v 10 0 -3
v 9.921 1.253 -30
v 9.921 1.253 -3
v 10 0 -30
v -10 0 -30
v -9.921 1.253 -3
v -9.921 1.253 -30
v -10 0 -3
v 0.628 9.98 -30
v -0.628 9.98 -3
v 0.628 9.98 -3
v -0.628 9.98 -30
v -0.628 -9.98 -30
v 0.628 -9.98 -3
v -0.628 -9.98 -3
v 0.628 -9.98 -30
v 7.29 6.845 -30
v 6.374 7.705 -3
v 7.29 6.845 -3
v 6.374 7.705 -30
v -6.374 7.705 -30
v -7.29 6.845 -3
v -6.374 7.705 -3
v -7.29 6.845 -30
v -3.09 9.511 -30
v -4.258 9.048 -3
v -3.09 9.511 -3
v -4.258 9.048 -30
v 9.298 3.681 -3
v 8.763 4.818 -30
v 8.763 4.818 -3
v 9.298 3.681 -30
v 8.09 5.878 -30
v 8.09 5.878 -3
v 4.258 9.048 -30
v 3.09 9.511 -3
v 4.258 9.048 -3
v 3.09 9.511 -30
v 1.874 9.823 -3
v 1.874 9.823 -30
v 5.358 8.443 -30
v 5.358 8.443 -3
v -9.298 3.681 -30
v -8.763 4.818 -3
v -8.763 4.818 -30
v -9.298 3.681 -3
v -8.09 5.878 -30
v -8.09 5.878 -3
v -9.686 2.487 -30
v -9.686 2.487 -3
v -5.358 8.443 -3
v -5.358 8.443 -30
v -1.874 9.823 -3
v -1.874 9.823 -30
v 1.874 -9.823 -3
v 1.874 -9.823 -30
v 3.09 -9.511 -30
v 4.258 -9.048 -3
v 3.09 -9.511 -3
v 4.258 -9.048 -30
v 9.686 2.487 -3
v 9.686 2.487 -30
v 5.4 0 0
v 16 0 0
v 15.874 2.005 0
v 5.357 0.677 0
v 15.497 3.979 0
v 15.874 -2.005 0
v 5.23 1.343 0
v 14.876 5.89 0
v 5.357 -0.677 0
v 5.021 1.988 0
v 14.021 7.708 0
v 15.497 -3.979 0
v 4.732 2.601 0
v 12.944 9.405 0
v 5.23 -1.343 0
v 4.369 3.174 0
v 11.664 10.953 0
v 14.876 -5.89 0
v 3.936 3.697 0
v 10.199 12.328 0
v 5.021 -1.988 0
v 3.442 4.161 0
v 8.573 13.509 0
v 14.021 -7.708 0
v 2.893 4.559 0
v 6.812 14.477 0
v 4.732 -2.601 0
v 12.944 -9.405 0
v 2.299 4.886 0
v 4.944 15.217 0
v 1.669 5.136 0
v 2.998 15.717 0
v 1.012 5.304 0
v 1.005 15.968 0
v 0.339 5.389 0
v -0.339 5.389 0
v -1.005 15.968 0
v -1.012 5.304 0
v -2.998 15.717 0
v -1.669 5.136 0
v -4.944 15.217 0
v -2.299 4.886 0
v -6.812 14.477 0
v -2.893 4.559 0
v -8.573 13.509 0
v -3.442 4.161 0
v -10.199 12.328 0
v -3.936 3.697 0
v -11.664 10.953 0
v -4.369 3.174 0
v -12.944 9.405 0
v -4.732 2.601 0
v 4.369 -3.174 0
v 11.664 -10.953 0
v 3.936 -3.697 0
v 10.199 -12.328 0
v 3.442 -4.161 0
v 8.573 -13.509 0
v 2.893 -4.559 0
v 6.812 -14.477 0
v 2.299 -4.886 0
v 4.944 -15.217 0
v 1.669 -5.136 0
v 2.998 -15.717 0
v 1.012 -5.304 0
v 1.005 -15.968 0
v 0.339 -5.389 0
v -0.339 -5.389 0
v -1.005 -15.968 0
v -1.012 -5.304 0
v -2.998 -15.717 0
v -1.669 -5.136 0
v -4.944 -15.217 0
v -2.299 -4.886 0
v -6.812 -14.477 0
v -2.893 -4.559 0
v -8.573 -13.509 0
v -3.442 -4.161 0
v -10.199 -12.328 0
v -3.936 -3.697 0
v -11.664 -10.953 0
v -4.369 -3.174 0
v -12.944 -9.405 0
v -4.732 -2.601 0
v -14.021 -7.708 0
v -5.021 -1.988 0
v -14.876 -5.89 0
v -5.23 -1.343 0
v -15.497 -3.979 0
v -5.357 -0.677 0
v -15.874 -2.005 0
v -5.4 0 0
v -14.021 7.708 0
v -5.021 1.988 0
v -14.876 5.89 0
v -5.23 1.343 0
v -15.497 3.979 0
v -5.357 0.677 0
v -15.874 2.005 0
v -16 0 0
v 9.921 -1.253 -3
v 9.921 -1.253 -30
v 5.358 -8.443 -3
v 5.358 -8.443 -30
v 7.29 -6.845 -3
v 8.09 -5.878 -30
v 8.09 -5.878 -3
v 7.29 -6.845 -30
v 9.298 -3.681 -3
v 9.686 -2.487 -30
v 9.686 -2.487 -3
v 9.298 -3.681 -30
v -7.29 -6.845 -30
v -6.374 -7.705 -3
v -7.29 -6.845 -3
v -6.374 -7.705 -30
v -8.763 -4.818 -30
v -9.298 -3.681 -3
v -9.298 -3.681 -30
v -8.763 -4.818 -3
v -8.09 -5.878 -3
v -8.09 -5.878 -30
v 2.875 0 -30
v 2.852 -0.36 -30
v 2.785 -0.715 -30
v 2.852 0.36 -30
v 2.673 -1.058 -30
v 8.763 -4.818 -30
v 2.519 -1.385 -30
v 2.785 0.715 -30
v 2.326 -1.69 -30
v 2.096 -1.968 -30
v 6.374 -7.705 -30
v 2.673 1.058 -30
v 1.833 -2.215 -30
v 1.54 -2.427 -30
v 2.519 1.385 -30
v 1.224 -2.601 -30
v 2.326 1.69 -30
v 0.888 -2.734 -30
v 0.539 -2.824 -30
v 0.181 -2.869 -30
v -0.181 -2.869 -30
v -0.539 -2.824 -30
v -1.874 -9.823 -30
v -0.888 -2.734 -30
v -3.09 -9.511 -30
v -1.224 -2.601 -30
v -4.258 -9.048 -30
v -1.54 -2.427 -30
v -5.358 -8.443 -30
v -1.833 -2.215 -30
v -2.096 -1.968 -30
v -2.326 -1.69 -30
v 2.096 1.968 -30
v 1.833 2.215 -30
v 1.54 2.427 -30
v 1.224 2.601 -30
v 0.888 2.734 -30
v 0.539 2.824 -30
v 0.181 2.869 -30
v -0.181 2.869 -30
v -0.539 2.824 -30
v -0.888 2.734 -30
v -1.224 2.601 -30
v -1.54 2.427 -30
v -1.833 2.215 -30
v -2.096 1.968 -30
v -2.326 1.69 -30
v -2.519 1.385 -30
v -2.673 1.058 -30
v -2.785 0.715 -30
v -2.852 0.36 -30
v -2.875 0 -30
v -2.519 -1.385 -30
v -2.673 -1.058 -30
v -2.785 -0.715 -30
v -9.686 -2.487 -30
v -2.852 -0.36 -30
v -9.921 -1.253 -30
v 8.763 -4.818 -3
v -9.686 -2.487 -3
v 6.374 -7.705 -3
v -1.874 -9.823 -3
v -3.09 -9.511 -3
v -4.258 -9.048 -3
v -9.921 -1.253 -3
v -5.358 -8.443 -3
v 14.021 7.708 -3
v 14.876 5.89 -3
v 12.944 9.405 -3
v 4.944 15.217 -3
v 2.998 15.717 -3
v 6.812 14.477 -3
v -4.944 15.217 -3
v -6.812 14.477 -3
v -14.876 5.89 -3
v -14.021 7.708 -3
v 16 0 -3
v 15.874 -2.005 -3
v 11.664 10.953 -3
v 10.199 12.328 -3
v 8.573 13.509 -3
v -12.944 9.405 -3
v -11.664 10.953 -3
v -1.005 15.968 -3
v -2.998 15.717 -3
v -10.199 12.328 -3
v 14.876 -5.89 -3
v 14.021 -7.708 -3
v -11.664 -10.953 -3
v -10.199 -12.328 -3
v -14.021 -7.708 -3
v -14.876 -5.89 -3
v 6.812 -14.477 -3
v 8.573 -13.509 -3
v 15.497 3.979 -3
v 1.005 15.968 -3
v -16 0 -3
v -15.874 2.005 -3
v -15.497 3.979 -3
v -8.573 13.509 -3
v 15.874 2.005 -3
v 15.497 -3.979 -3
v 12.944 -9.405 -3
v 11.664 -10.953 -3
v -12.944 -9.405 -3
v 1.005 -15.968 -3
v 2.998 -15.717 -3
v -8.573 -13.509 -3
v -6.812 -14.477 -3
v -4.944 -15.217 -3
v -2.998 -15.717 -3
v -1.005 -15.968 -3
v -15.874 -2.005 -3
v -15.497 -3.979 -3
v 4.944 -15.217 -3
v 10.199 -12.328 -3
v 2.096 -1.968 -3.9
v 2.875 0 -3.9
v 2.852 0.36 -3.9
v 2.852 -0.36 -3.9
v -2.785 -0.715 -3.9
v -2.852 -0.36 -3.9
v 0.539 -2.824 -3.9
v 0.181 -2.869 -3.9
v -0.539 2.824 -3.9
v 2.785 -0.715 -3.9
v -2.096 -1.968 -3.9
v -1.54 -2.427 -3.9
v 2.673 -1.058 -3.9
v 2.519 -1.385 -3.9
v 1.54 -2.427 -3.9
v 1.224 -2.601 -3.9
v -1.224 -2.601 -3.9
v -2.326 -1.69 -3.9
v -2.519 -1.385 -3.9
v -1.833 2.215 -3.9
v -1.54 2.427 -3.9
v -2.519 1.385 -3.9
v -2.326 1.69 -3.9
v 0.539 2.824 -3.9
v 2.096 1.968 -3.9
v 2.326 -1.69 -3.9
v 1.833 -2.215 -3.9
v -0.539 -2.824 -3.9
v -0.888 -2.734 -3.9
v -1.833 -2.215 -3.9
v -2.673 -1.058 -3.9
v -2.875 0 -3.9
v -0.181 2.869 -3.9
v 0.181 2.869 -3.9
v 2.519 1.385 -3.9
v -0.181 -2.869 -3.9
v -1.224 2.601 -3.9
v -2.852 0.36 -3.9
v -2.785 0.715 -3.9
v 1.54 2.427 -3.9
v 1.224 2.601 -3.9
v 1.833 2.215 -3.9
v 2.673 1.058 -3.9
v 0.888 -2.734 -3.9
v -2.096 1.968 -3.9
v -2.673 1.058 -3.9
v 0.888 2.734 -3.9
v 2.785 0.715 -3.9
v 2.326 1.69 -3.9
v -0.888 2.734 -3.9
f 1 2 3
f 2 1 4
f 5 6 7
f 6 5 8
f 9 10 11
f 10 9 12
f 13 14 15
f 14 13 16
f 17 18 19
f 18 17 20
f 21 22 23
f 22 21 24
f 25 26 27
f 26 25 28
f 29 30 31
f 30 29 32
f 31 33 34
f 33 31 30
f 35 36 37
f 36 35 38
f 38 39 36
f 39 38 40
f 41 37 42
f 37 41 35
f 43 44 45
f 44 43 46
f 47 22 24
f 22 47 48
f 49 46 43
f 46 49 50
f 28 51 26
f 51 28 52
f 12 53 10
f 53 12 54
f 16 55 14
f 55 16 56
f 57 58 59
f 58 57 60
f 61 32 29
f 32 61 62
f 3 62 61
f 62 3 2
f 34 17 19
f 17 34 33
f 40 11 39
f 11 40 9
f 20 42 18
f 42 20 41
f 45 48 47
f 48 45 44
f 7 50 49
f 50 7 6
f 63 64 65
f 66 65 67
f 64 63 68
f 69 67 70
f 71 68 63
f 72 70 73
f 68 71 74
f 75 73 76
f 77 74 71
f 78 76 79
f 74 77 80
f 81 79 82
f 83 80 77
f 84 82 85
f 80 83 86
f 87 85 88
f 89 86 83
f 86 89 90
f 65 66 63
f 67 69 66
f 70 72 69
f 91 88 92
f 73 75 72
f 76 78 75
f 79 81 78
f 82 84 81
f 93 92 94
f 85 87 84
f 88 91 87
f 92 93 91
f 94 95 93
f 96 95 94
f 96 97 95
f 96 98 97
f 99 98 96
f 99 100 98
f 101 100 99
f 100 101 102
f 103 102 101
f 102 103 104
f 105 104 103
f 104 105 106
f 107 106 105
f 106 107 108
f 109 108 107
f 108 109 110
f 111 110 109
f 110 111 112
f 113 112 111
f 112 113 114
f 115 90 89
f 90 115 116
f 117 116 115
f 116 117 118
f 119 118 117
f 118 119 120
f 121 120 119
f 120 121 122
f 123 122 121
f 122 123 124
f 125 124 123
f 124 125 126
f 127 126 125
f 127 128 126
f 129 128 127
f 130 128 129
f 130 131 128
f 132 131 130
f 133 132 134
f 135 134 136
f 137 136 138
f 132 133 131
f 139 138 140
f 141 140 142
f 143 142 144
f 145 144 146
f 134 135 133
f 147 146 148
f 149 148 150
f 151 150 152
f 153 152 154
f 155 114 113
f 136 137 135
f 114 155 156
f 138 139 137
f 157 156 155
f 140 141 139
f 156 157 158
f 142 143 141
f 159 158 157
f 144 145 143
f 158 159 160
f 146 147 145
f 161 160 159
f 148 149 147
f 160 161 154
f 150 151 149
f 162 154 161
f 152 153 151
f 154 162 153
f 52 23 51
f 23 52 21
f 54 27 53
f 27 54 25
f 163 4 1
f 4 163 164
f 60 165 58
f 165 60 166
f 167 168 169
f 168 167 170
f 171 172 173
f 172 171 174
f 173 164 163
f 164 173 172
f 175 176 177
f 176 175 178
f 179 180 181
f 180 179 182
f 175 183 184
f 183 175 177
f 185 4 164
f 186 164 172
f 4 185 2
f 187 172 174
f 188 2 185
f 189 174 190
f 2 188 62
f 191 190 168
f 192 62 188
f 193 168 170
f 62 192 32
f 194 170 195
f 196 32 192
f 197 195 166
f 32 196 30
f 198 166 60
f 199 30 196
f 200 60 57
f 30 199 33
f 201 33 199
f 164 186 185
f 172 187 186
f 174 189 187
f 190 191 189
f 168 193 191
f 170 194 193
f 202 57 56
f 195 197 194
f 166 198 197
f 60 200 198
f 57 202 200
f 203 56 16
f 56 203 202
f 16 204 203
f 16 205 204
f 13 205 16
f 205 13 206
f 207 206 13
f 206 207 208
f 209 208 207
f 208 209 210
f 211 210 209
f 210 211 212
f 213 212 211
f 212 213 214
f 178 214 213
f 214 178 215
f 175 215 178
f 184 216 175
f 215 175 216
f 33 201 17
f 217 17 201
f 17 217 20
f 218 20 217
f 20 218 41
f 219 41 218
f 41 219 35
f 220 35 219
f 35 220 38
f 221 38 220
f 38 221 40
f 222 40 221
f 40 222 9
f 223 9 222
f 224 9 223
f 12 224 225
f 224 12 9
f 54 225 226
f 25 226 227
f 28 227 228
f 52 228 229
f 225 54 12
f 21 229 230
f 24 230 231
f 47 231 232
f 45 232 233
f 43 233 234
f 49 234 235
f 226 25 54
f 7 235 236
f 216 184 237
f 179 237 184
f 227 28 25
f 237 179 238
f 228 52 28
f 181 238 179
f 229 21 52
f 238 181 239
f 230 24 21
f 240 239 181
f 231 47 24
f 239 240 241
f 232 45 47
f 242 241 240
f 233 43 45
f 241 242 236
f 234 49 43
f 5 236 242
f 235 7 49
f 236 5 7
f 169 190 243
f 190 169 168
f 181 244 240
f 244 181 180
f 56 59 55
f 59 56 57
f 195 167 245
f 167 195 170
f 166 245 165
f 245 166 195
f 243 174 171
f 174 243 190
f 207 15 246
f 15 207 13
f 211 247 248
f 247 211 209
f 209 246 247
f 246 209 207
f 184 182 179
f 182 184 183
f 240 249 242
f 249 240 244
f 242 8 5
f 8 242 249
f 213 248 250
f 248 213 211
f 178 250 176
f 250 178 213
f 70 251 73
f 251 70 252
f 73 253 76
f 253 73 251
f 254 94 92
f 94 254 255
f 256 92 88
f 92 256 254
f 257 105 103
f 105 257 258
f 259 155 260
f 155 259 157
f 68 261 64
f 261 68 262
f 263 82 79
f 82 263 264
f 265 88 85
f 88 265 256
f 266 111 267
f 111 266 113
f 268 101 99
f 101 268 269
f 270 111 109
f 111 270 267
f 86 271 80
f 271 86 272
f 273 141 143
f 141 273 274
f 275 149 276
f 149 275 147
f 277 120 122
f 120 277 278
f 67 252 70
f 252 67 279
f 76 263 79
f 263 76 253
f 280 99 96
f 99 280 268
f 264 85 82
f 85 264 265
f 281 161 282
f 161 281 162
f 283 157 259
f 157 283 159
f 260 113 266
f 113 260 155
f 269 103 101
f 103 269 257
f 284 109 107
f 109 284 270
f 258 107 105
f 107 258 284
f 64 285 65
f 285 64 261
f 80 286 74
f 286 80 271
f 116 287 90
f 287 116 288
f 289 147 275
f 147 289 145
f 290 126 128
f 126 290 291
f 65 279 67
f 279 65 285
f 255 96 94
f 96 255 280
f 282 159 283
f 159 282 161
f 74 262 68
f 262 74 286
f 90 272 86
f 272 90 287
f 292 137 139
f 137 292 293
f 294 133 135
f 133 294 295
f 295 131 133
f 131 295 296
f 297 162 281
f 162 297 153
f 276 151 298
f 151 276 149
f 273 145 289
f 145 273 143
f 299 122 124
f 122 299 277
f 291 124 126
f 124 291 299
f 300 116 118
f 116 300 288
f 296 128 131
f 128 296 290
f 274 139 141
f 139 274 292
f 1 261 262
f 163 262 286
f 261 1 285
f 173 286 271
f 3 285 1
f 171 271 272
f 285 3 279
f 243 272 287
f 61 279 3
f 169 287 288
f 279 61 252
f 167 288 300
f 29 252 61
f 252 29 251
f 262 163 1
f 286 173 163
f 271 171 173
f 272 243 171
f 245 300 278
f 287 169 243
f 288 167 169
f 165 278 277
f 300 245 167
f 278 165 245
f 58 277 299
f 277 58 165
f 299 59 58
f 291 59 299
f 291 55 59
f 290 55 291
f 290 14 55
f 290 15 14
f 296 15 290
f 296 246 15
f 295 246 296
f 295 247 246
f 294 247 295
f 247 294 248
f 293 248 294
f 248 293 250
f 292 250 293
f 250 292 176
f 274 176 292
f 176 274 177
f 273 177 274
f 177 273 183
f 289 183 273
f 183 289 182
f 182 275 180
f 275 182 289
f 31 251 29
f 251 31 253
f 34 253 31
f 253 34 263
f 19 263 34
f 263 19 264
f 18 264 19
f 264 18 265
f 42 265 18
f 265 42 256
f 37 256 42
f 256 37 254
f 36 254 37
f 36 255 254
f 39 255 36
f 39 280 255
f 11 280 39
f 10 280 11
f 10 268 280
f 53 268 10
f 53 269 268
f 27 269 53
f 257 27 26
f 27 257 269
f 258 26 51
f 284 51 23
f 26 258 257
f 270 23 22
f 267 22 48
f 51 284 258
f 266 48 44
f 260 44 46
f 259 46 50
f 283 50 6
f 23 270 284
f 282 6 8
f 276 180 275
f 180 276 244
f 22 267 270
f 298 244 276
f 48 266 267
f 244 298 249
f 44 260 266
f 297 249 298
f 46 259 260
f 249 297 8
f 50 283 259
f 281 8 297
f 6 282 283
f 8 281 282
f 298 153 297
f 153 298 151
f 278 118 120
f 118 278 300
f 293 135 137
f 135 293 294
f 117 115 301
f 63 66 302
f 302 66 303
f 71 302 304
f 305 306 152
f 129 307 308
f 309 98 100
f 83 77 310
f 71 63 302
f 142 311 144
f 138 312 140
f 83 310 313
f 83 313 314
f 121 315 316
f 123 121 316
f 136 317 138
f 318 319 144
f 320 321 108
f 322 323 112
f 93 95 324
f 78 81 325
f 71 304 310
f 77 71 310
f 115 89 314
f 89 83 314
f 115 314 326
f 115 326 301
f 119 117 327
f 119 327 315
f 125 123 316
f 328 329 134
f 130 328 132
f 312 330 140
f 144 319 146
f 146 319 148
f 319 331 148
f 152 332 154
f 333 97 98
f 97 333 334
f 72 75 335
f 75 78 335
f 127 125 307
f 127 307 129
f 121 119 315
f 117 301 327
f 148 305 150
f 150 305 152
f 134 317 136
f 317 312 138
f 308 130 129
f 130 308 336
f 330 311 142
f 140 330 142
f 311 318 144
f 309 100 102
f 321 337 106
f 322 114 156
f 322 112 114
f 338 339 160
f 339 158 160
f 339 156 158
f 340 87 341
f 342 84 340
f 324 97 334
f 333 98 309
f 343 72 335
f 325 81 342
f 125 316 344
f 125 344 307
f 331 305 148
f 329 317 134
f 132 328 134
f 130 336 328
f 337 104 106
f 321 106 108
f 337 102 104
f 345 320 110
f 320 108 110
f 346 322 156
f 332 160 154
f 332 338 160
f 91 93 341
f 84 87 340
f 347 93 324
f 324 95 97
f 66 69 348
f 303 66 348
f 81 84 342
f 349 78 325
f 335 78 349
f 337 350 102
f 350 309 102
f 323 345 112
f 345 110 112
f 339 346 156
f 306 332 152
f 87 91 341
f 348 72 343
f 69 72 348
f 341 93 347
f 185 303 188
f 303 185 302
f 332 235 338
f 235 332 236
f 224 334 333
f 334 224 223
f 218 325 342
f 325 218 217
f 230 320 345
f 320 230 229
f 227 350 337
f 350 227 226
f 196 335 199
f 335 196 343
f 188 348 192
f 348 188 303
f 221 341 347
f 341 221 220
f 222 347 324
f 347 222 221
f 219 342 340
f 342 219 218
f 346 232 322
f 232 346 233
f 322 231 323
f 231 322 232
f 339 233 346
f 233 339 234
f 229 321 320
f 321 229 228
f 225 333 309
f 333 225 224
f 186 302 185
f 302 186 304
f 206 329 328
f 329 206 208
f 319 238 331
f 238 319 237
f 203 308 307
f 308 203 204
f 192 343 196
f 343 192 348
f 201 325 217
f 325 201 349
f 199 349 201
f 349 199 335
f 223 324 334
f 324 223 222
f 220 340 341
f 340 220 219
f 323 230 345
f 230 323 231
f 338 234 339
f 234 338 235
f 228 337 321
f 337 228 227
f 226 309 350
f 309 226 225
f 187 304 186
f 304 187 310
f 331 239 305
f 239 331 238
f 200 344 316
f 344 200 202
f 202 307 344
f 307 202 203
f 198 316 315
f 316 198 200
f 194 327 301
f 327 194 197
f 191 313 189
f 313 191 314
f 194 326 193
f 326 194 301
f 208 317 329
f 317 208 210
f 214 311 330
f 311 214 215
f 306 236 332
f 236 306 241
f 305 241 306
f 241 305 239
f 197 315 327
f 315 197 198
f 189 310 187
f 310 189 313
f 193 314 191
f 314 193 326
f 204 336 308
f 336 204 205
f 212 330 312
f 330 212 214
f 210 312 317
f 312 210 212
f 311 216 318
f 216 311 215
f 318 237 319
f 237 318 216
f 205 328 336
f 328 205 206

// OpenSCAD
$fn = 50;


difference() {
	union() {
		translate(v = [0, 0, -30.0000000000]) {
			cylinder(h = 30, r = 10.0000000000);
		}
		translate(v = [0, 0, -3.0000000000]) {
			cylinder(h = 3, r = 16.0000000000);
		}
	}
	union() {
		translate(v = [0, 0, 0]) {
			rotate(a = [0, 0, 0]) {
				difference() {
					union() {
						#translate(v = [0, 0, -30.0000000000]) {
							cylinder(h = 30, r = 2.6000000000);
						}
						#translate(v = [0, 0, -3.9000000000]) {
							cylinder(h = 3.9000000000, r1 = 2.8750000000, r2 = 5.4000000000);
						}
						#translate(v = [0, 0, -30.0000000000]) {
							cylinder(h = 30, r = 2.8750000000);
						}
						#translate(v = [0, 0, -30.0000000000]) {
							cylinder(h = 30, r = 2.6000000000);
						}
					}
					union();
				}
			}
		}
	}
}
